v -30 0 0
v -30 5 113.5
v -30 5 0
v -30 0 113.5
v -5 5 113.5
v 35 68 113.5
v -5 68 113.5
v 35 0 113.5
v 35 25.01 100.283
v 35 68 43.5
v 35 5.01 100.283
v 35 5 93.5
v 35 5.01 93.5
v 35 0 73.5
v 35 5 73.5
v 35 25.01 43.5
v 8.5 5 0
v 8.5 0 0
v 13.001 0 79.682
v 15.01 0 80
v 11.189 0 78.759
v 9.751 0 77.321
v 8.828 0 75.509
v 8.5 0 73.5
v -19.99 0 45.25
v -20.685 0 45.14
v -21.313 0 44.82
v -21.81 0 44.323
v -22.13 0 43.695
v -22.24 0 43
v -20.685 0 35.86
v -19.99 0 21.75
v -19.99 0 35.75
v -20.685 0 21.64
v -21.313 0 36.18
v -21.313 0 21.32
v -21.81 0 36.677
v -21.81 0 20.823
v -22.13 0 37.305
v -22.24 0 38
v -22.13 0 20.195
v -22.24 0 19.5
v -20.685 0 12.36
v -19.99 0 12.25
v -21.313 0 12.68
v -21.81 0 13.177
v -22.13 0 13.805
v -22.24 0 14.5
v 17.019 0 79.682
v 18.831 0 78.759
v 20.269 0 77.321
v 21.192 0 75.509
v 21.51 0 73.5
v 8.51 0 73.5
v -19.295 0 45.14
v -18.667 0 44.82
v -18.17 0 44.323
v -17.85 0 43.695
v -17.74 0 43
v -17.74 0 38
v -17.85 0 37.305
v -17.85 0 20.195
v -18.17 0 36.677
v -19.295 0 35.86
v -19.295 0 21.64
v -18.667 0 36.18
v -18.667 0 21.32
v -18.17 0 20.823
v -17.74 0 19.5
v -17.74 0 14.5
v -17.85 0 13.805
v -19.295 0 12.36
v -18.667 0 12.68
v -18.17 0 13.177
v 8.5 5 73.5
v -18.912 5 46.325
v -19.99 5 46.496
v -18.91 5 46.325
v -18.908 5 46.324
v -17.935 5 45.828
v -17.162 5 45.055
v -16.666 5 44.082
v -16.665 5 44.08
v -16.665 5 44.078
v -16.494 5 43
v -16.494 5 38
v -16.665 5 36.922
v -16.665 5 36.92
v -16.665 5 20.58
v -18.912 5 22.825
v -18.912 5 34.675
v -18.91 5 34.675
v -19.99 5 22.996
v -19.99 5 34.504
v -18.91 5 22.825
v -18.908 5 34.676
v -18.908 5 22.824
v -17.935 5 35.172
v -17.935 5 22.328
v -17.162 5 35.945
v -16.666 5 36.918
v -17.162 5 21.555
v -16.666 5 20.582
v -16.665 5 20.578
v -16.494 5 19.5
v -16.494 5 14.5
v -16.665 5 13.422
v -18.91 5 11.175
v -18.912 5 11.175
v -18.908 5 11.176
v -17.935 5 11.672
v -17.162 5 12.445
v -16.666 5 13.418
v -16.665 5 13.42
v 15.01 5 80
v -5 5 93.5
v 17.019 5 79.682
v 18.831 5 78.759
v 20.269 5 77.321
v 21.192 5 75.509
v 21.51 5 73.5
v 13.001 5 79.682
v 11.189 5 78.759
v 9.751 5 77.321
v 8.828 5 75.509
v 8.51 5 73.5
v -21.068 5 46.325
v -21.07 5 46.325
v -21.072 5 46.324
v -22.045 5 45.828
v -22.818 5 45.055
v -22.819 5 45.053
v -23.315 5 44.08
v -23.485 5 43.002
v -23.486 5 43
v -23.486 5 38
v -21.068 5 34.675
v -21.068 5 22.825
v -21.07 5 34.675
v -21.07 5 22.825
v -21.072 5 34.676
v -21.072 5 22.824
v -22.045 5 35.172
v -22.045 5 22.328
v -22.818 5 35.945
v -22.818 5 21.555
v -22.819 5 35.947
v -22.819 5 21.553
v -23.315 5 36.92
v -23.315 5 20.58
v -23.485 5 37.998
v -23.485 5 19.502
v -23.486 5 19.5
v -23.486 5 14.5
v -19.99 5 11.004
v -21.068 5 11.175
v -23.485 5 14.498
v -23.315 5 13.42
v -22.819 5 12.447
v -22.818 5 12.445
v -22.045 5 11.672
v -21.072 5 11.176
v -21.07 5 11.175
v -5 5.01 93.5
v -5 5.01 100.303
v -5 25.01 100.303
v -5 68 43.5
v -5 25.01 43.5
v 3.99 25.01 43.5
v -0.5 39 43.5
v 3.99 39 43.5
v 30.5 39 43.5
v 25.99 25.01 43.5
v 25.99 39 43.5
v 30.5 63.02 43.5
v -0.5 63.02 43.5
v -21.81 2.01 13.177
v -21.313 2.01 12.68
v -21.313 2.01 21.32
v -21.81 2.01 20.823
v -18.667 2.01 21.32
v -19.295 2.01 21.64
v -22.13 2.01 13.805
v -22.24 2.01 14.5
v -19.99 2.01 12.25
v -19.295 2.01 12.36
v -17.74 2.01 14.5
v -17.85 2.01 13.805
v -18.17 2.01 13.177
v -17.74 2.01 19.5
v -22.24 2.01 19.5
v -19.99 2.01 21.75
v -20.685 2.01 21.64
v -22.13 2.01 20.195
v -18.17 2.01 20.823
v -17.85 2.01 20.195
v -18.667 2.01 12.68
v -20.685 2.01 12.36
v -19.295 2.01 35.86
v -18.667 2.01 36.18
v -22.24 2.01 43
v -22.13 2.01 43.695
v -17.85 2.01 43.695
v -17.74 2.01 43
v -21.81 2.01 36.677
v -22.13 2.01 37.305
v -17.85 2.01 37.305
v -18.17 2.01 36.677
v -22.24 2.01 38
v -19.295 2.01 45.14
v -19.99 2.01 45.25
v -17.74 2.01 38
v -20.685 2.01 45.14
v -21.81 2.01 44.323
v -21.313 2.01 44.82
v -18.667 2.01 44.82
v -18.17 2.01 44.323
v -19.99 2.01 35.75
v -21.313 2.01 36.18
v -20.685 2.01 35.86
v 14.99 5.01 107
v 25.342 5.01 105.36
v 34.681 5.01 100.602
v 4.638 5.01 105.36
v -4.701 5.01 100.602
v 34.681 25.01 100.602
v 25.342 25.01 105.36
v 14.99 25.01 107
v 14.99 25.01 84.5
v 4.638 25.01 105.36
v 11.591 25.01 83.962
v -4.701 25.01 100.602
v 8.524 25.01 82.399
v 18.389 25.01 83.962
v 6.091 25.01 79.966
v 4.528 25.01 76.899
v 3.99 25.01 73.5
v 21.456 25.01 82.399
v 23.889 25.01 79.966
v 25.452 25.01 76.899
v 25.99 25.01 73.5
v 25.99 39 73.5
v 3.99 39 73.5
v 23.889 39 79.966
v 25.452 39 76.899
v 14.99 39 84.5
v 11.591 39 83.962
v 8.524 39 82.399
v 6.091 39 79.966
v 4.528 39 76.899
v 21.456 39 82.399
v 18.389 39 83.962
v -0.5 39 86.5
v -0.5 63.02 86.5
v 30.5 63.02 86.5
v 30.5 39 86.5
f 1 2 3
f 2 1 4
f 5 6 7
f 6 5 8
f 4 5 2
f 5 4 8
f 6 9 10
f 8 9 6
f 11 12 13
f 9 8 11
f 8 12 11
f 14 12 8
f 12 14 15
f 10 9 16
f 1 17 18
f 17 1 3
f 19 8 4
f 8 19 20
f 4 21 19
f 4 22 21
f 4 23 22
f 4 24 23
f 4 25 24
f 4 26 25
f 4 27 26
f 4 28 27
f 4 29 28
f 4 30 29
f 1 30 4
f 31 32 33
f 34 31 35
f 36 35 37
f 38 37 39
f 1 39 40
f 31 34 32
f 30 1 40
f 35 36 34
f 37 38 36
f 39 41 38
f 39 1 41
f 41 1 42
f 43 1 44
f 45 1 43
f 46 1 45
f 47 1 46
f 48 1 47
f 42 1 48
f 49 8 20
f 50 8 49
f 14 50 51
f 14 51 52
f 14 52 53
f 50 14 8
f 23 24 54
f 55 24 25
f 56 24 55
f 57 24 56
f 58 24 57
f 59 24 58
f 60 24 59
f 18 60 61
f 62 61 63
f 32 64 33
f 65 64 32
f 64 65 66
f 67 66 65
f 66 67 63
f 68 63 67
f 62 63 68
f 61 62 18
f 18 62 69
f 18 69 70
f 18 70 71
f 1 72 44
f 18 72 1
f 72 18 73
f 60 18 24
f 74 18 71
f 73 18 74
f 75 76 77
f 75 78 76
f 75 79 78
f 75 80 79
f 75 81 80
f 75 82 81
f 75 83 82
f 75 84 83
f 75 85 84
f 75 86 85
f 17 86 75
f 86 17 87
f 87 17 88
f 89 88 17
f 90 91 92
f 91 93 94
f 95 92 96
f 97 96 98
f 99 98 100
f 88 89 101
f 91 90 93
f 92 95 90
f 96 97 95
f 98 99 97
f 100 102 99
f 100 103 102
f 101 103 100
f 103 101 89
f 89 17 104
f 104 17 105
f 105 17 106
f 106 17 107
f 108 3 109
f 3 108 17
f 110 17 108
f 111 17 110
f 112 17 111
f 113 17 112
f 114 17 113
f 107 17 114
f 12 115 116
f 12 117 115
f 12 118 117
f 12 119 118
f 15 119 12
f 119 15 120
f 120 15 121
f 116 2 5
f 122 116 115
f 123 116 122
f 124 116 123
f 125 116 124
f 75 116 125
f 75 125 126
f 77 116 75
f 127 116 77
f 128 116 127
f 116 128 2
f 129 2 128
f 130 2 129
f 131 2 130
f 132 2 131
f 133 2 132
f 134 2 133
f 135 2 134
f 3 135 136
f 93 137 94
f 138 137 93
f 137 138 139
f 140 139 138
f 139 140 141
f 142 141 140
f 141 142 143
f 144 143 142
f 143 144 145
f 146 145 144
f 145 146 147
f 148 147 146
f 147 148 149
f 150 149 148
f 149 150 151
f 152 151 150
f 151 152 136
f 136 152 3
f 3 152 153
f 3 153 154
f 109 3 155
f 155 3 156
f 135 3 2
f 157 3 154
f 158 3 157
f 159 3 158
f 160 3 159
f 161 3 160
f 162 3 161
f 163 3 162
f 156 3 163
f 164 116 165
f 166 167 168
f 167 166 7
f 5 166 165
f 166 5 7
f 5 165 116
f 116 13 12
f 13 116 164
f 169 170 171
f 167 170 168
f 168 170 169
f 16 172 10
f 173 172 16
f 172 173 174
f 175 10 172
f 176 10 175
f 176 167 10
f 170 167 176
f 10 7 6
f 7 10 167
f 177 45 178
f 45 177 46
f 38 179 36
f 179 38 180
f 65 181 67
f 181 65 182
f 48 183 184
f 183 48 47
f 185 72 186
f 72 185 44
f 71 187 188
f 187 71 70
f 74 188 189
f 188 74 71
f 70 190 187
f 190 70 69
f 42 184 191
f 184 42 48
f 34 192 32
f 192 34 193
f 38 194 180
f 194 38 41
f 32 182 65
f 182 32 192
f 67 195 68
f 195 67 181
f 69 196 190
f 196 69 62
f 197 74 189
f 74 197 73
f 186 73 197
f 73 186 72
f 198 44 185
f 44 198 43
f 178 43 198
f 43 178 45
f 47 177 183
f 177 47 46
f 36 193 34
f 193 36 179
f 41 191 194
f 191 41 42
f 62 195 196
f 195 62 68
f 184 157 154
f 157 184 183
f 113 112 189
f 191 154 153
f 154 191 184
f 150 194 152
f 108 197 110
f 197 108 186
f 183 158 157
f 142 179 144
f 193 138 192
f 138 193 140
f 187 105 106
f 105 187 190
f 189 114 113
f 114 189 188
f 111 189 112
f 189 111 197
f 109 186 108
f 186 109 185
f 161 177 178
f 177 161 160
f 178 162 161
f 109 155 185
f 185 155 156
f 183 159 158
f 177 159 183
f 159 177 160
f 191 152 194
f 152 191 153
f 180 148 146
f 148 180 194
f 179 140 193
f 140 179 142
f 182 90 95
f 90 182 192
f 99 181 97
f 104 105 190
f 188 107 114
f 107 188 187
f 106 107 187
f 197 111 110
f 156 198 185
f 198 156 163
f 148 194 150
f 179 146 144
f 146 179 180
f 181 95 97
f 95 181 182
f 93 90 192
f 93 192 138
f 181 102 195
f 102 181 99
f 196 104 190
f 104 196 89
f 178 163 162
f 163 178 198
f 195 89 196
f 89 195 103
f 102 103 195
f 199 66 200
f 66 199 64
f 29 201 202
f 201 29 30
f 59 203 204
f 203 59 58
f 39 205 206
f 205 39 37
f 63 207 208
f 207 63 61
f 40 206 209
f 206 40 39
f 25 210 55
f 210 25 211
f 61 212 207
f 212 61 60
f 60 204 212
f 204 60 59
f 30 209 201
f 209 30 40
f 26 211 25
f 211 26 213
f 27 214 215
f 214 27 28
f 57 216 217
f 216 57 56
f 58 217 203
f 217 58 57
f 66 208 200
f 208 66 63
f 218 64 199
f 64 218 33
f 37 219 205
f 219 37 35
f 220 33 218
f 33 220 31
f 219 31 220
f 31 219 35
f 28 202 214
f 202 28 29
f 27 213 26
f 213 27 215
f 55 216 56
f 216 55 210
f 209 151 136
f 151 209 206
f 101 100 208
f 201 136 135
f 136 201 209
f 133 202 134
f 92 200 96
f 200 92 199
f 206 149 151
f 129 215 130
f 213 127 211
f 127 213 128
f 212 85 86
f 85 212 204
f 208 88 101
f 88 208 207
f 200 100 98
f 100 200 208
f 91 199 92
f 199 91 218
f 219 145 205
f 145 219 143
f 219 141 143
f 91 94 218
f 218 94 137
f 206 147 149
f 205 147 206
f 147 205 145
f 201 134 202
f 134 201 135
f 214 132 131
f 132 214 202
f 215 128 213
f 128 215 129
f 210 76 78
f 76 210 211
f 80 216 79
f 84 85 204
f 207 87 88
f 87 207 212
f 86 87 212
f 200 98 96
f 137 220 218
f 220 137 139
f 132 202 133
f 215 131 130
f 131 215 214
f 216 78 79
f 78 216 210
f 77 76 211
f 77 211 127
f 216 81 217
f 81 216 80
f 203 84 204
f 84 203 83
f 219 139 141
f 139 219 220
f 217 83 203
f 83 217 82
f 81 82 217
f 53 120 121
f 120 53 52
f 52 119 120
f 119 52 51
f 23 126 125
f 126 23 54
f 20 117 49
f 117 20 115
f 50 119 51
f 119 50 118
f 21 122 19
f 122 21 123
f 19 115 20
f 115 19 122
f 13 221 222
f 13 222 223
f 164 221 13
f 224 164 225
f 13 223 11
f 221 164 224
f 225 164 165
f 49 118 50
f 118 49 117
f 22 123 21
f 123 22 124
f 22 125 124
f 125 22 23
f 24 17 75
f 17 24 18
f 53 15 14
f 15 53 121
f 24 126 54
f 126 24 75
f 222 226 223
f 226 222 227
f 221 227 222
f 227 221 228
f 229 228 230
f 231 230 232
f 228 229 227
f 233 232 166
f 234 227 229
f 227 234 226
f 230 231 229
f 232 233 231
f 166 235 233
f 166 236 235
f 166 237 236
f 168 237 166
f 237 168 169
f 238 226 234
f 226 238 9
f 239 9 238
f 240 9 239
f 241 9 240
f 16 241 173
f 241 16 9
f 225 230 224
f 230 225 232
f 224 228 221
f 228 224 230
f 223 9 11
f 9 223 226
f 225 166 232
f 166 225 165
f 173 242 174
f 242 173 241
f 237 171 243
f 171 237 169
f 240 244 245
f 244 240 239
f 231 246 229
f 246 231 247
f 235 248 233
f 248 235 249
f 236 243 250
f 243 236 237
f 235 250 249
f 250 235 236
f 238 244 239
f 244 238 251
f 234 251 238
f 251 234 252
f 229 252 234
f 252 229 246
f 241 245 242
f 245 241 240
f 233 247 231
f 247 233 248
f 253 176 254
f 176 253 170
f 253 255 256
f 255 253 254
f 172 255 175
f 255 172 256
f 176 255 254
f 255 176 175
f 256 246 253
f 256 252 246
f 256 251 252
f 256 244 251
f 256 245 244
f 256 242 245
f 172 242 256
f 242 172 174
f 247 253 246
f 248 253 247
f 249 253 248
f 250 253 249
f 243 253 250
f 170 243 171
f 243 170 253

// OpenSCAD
$fn=20;

wall_screw_diameter = 4.5;
wall_screw_outer_diameter = 7;
wall_screw_head_height = 3; 
wall_screw_distance = 23.5;
wall_screw_offset = 10;
wall_screw_tolerance = 5;

gearbox_depth = 31;
gearbox_thickness = 24;
gearbox_height_without_motor = 46;
gearbox_motor_height = 39;

gearbox_axle_diameter = 15 + 7; // +7 to account for axle being offset
gearbox_axle_thickness = 12 + 2; // +2 for tolerance
gearbox_axle_offset = 13;

gearbox_gear_diameter = 67;
gearbox_gear_thickness = 18 + 2; // +2 for tolerance

gearbox_full_thickness = gearbox_thickness + gearbox_axle_thickness + gearbox_gear_thickness;
gearbox_full_height = gearbox_height_without_motor + gearbox_motor_height;

mount_width = 30;
mount_thickness = 5;

axle_to_top_screw = 33;
screw_bottom_offset = 17;

box_height = 40;
box_offset = screw_bottom_offset + wall_screw_distance + axle_to_top_screw;
box_thickness = 5;

cuo = 200;
ep = 0.01;
ep2 = ep*2;

module capsule(height, width, length, width2 = "undefined") {
    rotate([-90,0,0]) {
        hull() {
            translate([-ep,-height/2,0]) if (width2 == "undefined") {
                cylinder(d=width, h=length);
            } else {
                cylinder(d1=width, d2=width2, h=length);
            }
            translate([-ep,height/2,0]) if (width2 == "undefined") {
                cylinder(d=width, h=length);
            } else {
                cylinder(d1=width, d2=width2, h=length);
            }
        }
    }
}

module motor_profile() {
    translate([
        gearbox_depth/2 + ep,
        0,
        gearbox_full_height - gearbox_axle_offset,
    ]) 
    rotate([90,0,0])
    cylinder(d=13, h=20);

    translate([
        gearbox_depth/2 - 13/2,
        -mount_thickness - ep2,
        -10,
    ]) 
    cube([100,mount_thickness+ep,gearbox_full_height - gearbox_axle_offset + 10]);

    translate([
        gearbox_depth/2,
        0,
        gearbox_full_height - gearbox_axle_offset - cuo/2,
    ])
    capsule(cuo, gearbox_gear_diameter, gearbox_gear_thickness);

    translate([
        gearbox_depth/2,
        gearbox_gear_thickness - ep,
        gearbox_full_height - gearbox_axle_offset - cuo/2,
    ])
    capsule(cuo, gearbox_axle_diameter, gearbox_axle_thickness+ep2);

    translate([
        0,
        gearbox_gear_thickness + gearbox_axle_thickness - ep,
        gearbox_full_height - cuo,
    ])
    cube([gearbox_depth, gearbox_thickness+ep2, cuo]);
}

module screw() {
    capsule(wall_screw_tolerance, wall_screw_diameter, 100);
    capsule(wall_screw_tolerance, wall_screw_outer_diameter, wall_screw_head_height, wall_screw_diameter);
}

module mounting_plate() {
    difference() {
        union() {
            translate([-mount_width, 0, 0])
            cube([mount_width+35, mount_thickness, box_offset + box_height]);

            translate([-5, 0, box_offset + box_height - 20])
            cube([gearbox_depth + mount_thickness + 4, gearbox_gear_thickness+box_thickness+mount_thickness, 20]);

            translate([-mount_thickness, mount_thickness+gearbox_gear_thickness, box_offset - 30])
            cube([mount_width+mount_thickness*2, gearbox_axle_thickness+gearbox_thickness+mount_thickness, box_height + 30]);
        }

        translate([-20, mount_thickness+ep, screw_bottom_offset]) rotate([0,0,180]) {
            screw();
            translate([0, 0, wall_screw_distance]) screw();
        }
    }
}

difference() {
    mounting_plate();
    translate([mount_width/2 - gearbox_depth/2, mount_thickness + ep, box_offset-gearbox_full_height+gearbox_axle_offset]) motor_profile(); 
}
